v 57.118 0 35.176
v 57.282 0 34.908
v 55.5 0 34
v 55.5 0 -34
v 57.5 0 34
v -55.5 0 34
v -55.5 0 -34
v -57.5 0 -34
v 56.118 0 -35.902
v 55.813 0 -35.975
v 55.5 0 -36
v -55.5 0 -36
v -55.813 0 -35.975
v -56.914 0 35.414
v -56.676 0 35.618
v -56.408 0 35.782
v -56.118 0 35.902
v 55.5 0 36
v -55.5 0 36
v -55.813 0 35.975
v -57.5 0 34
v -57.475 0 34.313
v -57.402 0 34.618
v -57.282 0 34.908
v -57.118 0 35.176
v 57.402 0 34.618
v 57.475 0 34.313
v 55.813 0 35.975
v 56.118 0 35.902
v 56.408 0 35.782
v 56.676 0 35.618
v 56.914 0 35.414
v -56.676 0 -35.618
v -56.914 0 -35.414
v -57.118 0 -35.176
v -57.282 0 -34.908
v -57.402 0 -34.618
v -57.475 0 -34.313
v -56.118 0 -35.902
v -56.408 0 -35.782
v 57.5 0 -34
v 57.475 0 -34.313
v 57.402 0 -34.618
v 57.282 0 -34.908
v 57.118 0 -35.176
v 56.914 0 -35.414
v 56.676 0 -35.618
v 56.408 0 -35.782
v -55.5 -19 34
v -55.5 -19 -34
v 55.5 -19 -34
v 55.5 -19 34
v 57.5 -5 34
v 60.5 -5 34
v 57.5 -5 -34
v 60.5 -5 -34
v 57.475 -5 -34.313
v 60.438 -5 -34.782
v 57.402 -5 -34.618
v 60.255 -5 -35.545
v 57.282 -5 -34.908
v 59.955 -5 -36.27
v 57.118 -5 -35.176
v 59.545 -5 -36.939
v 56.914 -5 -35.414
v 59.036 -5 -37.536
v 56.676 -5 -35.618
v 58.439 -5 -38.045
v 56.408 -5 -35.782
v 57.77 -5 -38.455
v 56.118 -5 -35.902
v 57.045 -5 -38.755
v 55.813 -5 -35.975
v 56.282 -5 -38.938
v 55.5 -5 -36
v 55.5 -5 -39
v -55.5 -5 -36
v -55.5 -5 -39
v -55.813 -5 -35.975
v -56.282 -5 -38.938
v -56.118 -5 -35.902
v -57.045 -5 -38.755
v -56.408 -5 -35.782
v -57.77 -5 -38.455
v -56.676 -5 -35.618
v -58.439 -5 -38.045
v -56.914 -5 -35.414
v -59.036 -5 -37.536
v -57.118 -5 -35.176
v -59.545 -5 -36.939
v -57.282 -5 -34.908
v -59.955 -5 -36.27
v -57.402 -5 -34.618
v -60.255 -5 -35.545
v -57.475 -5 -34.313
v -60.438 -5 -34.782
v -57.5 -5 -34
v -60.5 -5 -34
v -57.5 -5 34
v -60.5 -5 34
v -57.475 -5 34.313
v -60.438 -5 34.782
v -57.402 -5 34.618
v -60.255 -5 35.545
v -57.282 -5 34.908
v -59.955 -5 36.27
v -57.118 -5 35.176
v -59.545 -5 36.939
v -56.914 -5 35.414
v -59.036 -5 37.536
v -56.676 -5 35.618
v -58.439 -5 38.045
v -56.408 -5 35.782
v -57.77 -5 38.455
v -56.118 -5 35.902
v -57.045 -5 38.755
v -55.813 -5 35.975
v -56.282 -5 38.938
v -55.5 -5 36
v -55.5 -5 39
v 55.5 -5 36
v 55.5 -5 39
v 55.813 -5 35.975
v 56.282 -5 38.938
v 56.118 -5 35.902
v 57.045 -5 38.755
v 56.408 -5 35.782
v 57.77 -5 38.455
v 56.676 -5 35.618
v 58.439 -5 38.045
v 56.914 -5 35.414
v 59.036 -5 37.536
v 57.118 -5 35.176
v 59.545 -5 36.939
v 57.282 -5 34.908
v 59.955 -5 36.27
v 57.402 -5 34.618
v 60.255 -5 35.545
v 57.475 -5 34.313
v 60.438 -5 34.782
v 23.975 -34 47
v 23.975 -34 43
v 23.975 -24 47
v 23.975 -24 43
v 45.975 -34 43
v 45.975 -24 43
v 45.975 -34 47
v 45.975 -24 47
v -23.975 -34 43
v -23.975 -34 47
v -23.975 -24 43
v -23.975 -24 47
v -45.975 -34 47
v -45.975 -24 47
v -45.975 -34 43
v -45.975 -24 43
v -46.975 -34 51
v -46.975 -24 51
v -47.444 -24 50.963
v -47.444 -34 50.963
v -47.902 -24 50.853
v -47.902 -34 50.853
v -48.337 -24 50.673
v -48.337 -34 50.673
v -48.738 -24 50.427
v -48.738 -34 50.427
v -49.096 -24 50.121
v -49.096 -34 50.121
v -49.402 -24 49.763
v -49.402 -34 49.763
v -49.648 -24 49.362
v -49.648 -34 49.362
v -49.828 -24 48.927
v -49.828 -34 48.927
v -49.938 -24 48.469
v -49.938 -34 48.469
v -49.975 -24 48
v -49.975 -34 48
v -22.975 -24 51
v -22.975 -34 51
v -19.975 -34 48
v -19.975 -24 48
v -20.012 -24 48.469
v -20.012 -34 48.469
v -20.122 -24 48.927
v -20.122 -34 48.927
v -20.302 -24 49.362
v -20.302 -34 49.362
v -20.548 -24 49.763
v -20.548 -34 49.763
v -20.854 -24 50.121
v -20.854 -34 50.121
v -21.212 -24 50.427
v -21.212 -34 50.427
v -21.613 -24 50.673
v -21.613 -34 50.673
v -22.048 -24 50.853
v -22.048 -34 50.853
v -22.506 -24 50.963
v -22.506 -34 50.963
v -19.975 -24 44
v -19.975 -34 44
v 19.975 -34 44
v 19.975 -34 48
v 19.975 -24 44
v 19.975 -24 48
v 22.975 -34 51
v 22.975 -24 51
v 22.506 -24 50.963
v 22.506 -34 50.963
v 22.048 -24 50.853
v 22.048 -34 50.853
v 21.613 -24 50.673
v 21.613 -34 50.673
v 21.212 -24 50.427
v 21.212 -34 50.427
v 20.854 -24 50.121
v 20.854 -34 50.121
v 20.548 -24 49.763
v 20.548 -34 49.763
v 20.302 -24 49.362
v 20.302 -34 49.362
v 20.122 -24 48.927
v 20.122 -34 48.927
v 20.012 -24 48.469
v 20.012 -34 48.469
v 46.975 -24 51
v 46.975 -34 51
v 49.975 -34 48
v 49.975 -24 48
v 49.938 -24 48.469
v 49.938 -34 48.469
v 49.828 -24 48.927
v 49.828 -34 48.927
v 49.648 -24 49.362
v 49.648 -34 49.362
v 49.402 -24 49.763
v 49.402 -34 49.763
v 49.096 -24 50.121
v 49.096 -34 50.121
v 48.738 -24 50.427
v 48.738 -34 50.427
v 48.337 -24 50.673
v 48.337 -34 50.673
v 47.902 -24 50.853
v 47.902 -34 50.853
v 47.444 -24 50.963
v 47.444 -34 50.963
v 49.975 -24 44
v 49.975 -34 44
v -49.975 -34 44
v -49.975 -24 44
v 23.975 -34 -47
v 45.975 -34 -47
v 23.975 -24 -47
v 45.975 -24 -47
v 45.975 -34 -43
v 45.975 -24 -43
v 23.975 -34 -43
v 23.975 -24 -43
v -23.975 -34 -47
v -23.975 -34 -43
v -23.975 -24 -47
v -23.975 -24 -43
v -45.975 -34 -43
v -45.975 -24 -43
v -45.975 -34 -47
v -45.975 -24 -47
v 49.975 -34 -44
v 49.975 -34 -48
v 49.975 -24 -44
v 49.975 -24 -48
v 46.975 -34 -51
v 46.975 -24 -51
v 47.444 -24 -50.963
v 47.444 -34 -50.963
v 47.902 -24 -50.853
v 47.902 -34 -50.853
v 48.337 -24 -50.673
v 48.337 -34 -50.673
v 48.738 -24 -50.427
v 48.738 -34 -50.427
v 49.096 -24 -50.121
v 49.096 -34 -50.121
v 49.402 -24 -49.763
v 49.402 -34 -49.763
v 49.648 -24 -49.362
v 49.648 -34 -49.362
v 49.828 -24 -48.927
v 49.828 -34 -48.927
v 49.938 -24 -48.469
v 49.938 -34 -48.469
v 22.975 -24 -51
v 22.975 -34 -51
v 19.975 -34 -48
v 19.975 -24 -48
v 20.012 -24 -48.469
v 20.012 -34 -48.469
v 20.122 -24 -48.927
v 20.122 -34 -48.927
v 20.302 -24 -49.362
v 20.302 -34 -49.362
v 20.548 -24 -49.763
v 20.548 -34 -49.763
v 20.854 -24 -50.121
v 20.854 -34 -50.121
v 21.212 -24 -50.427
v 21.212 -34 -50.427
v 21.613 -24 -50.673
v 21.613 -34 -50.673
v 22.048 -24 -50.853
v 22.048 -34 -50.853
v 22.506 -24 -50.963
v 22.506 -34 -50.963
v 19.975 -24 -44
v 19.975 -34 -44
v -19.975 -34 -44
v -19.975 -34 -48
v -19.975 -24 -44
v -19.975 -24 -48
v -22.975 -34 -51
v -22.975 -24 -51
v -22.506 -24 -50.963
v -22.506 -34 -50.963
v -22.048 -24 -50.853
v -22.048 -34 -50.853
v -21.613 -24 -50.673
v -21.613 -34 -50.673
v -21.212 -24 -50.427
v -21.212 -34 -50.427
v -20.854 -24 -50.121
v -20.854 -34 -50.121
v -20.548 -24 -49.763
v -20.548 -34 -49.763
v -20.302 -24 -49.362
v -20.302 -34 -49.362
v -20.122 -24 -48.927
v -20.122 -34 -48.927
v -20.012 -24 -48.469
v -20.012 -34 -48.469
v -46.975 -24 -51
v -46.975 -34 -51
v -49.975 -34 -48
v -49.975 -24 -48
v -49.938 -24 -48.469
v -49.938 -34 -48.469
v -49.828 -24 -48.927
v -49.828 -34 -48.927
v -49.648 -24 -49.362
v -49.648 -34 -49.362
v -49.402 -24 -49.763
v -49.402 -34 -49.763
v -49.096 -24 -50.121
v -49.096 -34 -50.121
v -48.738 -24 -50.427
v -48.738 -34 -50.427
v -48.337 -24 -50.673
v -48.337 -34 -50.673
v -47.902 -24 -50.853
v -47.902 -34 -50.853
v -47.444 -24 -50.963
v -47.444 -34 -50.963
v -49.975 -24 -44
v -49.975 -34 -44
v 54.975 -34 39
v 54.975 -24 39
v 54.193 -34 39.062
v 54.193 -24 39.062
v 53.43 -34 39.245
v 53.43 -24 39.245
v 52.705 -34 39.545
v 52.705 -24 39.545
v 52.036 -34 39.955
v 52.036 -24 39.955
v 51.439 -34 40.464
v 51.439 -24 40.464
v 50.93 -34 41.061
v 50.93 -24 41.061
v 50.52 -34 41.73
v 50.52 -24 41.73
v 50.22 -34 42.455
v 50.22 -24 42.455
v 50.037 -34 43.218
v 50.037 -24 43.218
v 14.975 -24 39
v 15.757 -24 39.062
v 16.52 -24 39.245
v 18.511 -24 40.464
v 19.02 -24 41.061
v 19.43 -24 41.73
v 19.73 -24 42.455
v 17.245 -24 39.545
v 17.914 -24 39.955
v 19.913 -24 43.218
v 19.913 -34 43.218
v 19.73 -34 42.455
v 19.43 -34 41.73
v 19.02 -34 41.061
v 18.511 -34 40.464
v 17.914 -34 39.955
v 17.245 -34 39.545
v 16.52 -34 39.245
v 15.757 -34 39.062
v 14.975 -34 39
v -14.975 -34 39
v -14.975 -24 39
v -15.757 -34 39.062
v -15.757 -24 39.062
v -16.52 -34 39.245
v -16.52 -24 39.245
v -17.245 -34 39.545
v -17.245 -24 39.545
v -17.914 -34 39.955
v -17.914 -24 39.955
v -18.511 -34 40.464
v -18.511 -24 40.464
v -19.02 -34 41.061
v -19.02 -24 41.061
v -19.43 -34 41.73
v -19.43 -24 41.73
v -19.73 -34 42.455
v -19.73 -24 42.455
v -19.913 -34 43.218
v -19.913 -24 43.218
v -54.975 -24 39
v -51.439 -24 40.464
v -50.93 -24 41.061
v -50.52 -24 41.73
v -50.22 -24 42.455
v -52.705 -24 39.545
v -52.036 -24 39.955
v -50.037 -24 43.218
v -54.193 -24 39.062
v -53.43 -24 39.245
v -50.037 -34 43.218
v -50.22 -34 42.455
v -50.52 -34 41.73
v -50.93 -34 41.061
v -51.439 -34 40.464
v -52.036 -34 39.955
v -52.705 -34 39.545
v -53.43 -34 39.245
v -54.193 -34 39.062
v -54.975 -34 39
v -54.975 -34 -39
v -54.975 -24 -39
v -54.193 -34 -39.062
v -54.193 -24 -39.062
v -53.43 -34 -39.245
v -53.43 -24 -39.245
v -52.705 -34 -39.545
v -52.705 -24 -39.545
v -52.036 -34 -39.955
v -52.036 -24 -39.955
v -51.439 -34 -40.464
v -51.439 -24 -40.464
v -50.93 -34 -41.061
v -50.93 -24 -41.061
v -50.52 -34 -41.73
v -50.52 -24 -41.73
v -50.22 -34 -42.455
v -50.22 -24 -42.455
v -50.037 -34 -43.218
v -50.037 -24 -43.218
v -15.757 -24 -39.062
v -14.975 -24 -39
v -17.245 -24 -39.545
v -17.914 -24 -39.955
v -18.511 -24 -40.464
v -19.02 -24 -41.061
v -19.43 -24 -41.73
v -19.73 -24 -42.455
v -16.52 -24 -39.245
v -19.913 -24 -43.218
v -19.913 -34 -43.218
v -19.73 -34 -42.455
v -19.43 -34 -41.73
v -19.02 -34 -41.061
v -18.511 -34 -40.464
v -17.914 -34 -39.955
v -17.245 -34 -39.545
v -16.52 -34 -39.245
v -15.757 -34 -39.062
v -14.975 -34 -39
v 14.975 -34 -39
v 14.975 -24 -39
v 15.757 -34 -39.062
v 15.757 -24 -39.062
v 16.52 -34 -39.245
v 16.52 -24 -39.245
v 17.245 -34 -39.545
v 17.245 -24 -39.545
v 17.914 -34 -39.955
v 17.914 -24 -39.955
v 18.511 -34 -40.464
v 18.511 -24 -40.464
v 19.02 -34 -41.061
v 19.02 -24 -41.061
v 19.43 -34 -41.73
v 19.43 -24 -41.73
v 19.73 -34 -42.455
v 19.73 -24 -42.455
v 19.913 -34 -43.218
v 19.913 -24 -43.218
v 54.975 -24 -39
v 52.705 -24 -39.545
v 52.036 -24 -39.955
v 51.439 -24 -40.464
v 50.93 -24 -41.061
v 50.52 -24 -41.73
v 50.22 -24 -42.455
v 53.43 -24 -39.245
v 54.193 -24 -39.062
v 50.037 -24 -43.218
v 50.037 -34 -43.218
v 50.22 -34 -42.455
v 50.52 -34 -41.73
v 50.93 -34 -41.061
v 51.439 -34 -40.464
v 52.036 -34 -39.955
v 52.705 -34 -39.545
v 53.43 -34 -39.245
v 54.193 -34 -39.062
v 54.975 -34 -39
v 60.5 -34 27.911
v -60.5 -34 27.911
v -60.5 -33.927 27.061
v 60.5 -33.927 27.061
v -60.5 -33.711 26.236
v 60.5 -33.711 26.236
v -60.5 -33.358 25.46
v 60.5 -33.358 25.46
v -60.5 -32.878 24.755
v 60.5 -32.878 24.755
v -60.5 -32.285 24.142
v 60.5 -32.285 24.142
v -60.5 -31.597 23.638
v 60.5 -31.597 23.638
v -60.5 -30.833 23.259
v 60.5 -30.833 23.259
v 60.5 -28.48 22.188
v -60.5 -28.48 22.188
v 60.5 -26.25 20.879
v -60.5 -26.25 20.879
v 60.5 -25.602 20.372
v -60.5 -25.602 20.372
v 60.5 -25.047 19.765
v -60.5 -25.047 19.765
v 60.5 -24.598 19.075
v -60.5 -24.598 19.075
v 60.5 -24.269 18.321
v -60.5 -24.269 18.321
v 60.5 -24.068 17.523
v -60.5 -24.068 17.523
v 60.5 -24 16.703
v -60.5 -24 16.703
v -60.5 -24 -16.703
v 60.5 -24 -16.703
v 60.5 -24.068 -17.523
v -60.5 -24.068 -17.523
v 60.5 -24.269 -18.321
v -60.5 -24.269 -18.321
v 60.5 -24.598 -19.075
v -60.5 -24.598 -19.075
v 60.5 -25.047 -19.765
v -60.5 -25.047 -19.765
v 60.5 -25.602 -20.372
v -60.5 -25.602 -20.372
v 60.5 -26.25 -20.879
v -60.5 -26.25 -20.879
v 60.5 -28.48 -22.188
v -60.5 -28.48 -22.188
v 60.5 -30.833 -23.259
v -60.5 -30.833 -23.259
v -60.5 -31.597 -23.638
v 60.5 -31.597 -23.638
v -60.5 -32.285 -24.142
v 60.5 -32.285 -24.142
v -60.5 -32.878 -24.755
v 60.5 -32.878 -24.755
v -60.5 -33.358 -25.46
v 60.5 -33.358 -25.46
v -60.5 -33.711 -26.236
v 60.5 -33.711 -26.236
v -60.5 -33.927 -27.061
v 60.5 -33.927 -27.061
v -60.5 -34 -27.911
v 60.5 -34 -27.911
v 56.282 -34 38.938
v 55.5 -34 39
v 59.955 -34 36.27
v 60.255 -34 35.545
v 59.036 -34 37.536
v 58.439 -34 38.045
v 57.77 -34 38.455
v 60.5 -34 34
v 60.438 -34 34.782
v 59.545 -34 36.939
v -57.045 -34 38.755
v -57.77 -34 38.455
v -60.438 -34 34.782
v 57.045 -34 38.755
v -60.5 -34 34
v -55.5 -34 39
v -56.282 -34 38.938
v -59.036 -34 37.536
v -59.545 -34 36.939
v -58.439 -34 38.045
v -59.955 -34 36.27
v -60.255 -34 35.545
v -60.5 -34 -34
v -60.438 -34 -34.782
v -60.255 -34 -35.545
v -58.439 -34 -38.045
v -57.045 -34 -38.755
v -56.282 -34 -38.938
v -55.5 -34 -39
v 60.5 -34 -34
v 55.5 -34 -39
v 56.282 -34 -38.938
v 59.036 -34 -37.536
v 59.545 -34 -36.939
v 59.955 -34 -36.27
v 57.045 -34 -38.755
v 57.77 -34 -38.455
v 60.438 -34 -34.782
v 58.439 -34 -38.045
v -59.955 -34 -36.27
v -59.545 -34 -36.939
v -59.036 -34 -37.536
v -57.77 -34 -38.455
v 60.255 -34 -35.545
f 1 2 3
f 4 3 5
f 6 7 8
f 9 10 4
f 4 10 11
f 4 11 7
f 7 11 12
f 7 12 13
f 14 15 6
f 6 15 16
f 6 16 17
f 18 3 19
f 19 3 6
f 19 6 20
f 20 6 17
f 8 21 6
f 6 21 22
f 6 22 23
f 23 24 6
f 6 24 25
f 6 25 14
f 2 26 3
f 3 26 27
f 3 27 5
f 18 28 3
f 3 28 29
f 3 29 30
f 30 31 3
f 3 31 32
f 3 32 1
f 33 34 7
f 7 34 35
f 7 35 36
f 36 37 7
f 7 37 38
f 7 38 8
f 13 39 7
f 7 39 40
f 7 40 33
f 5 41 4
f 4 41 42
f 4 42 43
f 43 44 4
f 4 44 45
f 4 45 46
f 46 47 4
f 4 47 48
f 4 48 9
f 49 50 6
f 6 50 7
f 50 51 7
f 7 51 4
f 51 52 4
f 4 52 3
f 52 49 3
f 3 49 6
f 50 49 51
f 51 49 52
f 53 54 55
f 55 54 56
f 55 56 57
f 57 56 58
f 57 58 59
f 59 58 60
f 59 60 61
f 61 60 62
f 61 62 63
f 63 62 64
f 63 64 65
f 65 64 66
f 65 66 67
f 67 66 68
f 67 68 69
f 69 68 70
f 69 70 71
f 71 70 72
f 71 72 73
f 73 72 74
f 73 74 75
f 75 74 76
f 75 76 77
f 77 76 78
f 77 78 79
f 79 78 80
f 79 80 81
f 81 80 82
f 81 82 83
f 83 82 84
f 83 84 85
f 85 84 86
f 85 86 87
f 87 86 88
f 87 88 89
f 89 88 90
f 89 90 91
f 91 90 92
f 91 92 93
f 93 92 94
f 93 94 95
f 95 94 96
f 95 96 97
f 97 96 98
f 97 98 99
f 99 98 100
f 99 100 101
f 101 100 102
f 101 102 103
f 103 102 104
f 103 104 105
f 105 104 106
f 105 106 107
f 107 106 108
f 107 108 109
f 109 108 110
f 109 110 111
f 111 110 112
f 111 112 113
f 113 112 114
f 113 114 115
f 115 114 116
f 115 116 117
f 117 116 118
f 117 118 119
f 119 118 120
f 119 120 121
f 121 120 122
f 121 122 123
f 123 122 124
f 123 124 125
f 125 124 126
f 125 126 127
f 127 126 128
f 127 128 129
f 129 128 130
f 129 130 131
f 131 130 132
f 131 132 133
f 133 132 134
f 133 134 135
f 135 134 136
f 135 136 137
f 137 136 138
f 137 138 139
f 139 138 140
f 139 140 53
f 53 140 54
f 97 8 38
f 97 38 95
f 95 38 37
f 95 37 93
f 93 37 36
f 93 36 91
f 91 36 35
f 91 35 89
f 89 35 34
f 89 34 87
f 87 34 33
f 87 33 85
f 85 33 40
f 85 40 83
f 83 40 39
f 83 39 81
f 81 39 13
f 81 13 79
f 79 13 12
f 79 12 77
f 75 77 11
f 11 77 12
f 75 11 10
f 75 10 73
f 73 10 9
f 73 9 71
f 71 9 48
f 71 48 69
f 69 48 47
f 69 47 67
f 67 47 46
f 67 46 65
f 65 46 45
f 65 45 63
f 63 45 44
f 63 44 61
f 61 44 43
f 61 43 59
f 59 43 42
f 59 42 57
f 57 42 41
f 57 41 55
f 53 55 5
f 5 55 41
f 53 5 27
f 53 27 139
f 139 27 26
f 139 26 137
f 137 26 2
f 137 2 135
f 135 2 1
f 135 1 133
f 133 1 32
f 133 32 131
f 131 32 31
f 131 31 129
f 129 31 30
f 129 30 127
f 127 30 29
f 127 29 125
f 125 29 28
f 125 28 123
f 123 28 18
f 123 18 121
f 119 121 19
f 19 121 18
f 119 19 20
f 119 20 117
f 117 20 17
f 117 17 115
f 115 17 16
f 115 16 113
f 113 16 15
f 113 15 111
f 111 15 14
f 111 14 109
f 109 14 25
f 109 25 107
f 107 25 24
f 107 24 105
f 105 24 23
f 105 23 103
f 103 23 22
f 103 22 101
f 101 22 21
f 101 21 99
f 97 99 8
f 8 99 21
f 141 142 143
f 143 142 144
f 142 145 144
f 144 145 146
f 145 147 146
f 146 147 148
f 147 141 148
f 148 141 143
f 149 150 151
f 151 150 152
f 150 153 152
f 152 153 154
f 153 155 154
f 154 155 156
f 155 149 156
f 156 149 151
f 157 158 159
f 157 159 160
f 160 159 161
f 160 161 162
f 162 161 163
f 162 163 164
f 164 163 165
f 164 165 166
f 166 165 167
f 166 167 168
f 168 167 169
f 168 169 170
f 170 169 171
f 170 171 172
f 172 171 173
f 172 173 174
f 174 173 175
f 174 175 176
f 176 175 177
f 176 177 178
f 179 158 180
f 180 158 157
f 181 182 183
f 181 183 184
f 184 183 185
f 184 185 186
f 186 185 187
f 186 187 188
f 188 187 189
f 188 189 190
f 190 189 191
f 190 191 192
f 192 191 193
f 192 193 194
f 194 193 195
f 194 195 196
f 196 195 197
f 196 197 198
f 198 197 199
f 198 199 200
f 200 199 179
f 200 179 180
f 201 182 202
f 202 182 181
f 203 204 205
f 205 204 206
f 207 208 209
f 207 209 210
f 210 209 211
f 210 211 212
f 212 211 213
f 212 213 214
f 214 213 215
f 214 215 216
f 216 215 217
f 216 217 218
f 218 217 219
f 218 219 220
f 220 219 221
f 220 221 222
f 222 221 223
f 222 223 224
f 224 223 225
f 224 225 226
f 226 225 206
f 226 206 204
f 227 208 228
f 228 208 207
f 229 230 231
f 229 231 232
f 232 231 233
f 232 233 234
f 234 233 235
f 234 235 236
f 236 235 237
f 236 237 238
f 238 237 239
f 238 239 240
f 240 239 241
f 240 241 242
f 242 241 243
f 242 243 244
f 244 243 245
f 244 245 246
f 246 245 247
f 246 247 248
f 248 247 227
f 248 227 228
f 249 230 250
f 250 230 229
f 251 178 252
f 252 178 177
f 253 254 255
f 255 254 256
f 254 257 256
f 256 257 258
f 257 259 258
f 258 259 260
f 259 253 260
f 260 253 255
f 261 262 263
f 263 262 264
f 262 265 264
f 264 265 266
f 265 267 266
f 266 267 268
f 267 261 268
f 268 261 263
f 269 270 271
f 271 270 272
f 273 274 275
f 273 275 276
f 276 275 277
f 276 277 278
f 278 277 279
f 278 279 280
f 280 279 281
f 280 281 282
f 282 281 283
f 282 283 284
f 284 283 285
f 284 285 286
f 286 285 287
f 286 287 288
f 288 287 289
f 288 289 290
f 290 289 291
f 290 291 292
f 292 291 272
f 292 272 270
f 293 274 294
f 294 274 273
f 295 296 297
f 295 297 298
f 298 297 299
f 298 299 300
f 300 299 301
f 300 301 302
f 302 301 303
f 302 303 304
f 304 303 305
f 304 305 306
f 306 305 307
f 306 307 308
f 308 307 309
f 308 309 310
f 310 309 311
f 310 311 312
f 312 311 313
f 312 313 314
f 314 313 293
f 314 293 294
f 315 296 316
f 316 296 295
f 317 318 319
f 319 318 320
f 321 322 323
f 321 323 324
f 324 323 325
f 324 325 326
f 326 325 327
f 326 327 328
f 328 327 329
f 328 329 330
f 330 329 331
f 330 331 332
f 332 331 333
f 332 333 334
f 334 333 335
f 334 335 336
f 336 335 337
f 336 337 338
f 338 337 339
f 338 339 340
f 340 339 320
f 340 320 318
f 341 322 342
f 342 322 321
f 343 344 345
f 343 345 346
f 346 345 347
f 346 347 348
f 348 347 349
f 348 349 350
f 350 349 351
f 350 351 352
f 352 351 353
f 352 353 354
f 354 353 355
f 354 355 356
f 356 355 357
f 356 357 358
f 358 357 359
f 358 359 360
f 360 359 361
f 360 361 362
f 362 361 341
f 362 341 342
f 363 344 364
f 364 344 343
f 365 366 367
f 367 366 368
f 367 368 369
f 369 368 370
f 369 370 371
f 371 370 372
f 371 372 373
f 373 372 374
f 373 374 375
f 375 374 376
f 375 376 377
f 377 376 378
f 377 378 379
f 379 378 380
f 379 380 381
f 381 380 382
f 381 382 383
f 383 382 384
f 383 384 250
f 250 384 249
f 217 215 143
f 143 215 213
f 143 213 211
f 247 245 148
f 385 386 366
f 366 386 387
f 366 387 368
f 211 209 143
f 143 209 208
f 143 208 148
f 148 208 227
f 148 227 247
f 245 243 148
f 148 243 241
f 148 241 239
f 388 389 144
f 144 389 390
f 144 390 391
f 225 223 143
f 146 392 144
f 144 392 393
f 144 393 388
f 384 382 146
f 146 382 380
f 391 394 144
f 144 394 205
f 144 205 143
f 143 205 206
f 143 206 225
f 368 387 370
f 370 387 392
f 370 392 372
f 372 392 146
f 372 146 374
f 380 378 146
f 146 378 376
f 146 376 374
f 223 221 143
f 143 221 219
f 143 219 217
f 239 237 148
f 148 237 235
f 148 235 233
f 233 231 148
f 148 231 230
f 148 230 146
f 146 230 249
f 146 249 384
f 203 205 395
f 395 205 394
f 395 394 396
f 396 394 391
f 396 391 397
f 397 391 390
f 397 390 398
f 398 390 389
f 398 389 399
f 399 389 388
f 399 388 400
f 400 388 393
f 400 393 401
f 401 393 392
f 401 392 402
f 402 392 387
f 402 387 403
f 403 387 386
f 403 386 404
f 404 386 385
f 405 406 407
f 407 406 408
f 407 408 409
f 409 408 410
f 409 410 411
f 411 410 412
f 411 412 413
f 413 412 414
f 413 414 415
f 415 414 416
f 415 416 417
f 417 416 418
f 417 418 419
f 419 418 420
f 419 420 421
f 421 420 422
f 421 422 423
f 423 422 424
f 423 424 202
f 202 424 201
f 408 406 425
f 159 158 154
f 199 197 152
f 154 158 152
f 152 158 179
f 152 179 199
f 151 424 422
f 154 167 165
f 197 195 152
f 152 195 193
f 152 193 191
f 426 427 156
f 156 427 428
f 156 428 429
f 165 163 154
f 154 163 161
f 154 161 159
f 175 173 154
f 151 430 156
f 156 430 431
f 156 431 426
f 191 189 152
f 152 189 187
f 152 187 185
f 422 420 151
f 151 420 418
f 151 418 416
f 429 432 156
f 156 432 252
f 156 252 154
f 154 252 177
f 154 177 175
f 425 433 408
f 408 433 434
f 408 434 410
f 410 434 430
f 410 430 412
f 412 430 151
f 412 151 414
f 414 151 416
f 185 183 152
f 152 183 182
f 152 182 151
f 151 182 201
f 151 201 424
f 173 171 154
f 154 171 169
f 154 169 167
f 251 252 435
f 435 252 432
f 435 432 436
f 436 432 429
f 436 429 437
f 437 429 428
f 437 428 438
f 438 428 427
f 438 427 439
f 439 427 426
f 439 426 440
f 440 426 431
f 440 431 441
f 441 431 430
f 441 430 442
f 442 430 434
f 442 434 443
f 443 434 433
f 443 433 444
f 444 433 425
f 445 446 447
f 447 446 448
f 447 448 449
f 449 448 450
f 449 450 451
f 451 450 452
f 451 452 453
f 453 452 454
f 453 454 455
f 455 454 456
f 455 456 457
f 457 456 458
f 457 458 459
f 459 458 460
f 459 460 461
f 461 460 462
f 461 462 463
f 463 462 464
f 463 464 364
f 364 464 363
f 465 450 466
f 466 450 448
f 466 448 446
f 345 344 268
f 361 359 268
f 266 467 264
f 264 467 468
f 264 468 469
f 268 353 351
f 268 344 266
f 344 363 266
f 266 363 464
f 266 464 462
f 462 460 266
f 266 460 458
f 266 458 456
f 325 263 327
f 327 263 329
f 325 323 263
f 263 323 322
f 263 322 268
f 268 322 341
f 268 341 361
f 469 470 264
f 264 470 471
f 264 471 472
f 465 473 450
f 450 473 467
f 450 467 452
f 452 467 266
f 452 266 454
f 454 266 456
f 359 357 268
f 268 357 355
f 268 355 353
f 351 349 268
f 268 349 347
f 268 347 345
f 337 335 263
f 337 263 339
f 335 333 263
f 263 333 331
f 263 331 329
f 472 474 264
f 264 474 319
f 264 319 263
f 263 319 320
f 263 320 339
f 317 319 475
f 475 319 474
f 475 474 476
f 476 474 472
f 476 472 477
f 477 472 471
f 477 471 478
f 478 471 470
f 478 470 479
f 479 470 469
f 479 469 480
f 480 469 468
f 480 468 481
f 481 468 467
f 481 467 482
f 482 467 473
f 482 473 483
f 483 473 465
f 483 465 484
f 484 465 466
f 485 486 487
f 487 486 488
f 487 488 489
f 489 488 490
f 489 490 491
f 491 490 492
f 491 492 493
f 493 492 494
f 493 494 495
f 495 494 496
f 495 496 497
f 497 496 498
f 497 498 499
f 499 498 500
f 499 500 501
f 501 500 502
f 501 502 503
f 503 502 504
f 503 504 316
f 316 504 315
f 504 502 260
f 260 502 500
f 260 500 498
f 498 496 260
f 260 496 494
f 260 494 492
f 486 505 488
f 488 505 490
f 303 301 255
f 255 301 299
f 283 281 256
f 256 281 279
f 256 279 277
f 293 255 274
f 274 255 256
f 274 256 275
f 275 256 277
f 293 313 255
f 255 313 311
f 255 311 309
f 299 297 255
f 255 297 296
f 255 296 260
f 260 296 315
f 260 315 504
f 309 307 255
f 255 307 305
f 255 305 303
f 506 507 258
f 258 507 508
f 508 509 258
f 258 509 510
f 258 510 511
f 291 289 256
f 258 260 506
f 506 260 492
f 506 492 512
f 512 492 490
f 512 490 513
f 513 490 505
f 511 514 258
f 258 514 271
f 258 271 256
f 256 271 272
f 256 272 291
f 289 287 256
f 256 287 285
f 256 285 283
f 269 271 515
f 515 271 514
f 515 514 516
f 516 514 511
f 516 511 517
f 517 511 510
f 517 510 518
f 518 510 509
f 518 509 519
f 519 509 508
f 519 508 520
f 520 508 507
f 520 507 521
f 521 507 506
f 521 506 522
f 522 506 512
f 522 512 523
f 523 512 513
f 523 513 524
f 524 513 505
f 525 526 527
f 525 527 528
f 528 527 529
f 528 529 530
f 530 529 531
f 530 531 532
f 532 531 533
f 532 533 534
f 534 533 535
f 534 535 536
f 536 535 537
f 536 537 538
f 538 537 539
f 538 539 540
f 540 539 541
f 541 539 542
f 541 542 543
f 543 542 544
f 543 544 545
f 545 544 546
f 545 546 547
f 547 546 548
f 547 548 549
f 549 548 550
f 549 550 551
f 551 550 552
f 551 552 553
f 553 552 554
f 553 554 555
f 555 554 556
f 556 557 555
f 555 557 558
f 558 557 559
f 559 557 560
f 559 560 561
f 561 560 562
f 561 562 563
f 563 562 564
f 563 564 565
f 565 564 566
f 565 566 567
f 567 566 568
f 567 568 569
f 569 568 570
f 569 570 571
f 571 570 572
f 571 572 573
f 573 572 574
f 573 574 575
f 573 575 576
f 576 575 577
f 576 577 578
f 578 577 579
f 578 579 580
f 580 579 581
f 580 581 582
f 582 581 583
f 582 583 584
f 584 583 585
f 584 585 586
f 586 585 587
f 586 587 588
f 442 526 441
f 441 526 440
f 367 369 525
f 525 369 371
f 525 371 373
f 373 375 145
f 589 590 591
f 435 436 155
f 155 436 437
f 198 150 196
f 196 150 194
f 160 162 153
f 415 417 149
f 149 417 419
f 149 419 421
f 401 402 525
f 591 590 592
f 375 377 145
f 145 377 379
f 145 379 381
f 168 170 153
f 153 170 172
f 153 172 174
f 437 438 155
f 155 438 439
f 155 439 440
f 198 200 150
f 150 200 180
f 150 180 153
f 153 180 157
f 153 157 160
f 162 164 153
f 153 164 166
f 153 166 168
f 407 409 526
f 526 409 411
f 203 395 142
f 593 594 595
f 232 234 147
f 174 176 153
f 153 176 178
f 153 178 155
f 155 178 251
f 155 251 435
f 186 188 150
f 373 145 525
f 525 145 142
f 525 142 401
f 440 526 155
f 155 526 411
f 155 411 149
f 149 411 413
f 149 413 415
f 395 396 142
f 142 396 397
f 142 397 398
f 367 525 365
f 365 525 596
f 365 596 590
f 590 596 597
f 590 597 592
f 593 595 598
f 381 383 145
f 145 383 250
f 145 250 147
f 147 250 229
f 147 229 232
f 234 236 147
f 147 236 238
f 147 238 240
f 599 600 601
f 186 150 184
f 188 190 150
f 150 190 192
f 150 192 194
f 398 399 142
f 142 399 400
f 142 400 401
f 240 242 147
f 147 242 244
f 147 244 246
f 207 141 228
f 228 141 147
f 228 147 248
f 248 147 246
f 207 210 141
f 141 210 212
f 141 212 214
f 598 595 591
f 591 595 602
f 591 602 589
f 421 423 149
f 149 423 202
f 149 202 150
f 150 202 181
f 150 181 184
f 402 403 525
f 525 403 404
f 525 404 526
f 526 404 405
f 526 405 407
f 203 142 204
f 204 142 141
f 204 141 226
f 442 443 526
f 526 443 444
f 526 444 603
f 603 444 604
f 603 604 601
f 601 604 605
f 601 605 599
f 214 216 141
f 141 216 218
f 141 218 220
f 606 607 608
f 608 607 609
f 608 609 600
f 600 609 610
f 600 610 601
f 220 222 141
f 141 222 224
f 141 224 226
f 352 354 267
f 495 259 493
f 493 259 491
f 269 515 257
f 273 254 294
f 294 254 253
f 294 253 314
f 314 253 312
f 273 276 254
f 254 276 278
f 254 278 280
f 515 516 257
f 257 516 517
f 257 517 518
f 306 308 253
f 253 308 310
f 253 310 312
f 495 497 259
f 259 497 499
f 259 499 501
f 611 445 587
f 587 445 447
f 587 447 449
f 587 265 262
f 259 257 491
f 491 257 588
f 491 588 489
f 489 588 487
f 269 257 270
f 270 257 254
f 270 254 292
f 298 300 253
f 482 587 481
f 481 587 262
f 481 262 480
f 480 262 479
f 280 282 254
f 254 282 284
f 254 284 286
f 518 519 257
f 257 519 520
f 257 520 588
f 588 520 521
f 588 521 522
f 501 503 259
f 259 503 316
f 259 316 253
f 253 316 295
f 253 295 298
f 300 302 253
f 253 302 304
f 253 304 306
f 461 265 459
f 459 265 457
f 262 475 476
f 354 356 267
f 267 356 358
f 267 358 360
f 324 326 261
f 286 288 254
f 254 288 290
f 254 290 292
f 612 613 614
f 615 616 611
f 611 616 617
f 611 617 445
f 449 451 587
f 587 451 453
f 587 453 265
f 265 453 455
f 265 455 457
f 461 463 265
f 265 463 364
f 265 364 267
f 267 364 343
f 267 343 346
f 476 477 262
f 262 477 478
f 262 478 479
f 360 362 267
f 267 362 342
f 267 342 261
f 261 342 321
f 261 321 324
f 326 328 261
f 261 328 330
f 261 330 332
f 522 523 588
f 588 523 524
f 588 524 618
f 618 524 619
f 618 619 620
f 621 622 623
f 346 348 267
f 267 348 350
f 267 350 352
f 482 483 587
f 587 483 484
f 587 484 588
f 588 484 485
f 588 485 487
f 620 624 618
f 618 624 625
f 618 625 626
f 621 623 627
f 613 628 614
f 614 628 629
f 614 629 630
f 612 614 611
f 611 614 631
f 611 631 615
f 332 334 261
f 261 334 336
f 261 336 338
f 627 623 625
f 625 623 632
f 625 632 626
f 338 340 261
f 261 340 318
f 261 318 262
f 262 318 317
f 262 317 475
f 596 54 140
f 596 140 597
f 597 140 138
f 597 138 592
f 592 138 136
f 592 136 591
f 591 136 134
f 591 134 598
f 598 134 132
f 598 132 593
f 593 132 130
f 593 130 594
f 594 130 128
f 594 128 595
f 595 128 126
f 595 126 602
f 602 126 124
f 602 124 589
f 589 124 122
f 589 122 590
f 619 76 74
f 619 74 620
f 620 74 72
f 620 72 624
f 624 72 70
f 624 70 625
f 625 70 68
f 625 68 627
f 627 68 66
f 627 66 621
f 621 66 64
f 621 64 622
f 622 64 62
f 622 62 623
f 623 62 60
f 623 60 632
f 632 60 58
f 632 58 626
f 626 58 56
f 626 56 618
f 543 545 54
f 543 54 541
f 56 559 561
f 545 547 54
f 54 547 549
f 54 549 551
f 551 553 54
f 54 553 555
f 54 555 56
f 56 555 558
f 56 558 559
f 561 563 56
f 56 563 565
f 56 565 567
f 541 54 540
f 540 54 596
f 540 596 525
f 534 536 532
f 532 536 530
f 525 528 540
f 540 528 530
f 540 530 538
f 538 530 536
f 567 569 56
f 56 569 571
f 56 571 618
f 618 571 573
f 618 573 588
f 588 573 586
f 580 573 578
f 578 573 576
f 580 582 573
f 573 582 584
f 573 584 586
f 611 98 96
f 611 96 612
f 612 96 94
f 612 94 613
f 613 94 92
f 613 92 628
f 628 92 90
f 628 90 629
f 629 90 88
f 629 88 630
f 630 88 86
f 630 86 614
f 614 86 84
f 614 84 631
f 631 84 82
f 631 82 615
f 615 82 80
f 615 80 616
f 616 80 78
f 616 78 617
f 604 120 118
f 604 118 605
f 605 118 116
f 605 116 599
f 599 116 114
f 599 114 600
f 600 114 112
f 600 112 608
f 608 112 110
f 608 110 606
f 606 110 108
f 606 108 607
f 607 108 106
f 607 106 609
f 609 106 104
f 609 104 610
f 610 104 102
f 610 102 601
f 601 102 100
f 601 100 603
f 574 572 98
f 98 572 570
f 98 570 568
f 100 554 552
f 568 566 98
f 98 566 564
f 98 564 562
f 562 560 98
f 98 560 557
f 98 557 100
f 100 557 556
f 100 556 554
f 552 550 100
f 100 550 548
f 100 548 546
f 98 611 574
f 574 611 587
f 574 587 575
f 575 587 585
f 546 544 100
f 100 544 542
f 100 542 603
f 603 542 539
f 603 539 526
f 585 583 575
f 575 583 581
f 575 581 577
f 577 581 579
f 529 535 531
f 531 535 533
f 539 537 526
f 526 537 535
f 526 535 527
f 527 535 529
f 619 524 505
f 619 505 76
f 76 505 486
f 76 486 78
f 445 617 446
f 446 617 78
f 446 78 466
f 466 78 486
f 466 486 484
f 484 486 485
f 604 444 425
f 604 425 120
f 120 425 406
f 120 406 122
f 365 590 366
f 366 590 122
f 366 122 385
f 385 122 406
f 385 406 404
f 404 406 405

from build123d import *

# Parameters (mm, degrees)
CROQUIS2_W                   = 121
CROQUIS2_H                   = 78
CROQUIS2_W_2                 = 111
CROQUIS2_H_2                 = 68
SALIENTE_EXTRUIR2_DEPTH      = 19
CROQUIS4_W                   = 121
CROQUIS4_H                   = 78
SALIENTE_EXTRUIR3_DEPTH      = 5
SALIENTE_EXTRUIR4_DEPTH      = 60.5
SALIENTE_EXTRUIR4_DEPTH_BACK = 60.5
REDONDEO2_R                  = 5
CROQUIS7_W                   = 30
CROQUIS7_H                   = 12
CROQUIS7_W_2                 = 22
CROQUIS7_H_2                 = 4
SALIENTE_EXTRUIR5_DEPTH      = 10
REDONDEO5_R                  = 3
REDONDEO8_R                  = 5
REDONDEO6_R                  = 5
CROQUIS8_OUTSIDE_W           = 155.374
CROQUIS8_OUTSIDE_H           = 136.374
CORTAR_EXTRUIR1_DEPTH        = 5


with BuildPart() as part:
    # Croquis2 → Saliente-Extruir2 (new body)
    with BuildSketch(Plane(origin=(0, 0, 0), x_dir=(1, 0, 0), z_dir=(0, 1, 0))):
        Rectangle(CROQUIS2_W, CROQUIS2_H)
        Rectangle(CROQUIS2_W_2, CROQUIS2_H_2, mode=Mode.SUBTRACT)
    extrude(amount=-SALIENTE_EXTRUIR2_DEPTH)

    # Croquis4 → Saliente-Extruir3 (add)
    with BuildSketch(Plane.XZ.offset(19)):
        Rectangle(CROQUIS4_W, CROQUIS4_H)
    extrude(amount=SALIENTE_EXTRUIR3_DEPTH)

    # Croquis6 → Saliente-Extruir4 (add, two sides: drawn at the far end of the back side and taken through both)
    with BuildSketch(Plane(origin=(0, 0, 0), x_dir=(0, 0, -1), z_dir=(1, 0, 0)).offset(-SALIENTE_EXTRUIR4_DEPTH_BACK)):
        with BuildLine():
            Line((-39, -24), (-19.209372712, -24))
            ThreePointArc((-19.209372712, -24), (-22.306932281, -28.712804945), (-24.269322199, -34))
            Line((-24.269322199, -34), (-39, -34))
            Line((-39, -34), (-39, -24))
        make_face()
        with BuildLine():
            Line((39, -24), (39, -34))
            Line((39, -34), (24.269322199, -34))
            ThreePointArc((24.269322199, -34), (22.306932281, -28.712804945), (19.209372712, -24))
            Line((19.209372712, -24), (39, -24))
        make_face()
    extrude(amount=SALIENTE_EXTRUIR4_DEPTH + SALIENTE_EXTRUIR4_DEPTH_BACK)

    # Redondeo2
    redondeo2_edges = [part.edges().sort_by_distance(p)[0] for p in [
        (0, -34, 24.269322199),
        (0, -24, 19.209372712),
        (0, -34, -24.269322199),
        (0, -24, -19.209372712),
    ]]
    fillet(redondeo2_edges, radius=REDONDEO2_R)

    # Croquis7 → Saliente-Extruir5 (add)
    # profile 1 of 4: a face of its own
    with BuildSketch(Plane.XZ.offset(24)):
        with Locations((-34.974984355, 45)):
            Rectangle(CROQUIS7_W, CROQUIS7_H)
        with Locations((-34.974984355, 45)):
            Rectangle(CROQUIS7_W_2, CROQUIS7_H_2, mode=Mode.SUBTRACT)
    # profile 2 of 4: a face of its own
    with BuildSketch(Plane.XZ.offset(24)):
        with Locations((-34.974984355, -45)):
            Rectangle(CROQUIS7_W, CROQUIS7_H)
        with Locations((-34.974984355, -45)):
            Rectangle(CROQUIS7_W_2, CROQUIS7_H_2, mode=Mode.SUBTRACT)
    # profile 3 of 4: a face of its own
    with BuildSketch(Plane.XZ.offset(24)):
        with Locations((34.974984355, -45)):
            Rectangle(CROQUIS7_W, CROQUIS7_H)
        with Locations((34.974984355, -45)):
            Rectangle(CROQUIS7_W_2, CROQUIS7_H_2, mode=Mode.SUBTRACT)
    # profile 4 of 4: a face of its own
    with BuildSketch(Plane.XZ.offset(24)):
        with Locations((34.974984355, 45)):
            Rectangle(CROQUIS7_W, CROQUIS7_H)
        with Locations((34.974984355, 45)):
            Rectangle(CROQUIS7_W_2, CROQUIS7_H_2, mode=Mode.SUBTRACT)
    extrude(amount=SALIENTE_EXTRUIR5_DEPTH)

    # Redondeo5
    redondeo5_edges = [part.edges().sort_by_distance(p)[0] for p in [
        (-49.974984355, -29, 51),
        (-19.974984355, -29, 51),
        (-49.974984355, -29, -51),
        (-19.974984355, -29, -51),
        (19.974984355, -29, -51),
        (49.974984355, -29, -51),
        (49.974984355, -29, 51),
        (19.974984355, -29, 51),
    ]]
    fillet(redondeo5_edges, radius=REDONDEO5_R)

    # Redondeo8
    redondeo8_edges = [part.edges().sort_by_distance(p)[0] for p in [
        (60.5, -17, 39),
        (-60.5, -17, 39),
        (-60.5, -17, -39),
        (60.5, -17, -39),
    ]]
    fillet(redondeo8_edges, radius=REDONDEO8_R)

    # Redondeo6
    redondeo6_edges = [part.edges().sort_by_distance(p)[0] for p in [
        (-49.974984355, -29, 39),
        (-19.974984355, -29, 39),
        (-49.974984355, -29, -39),
        (-19.974984355, -29, -39),
        (49.974984355, -29, -39),
        (19.974984355, -29, -39),
        (49.974984355, -29, 39),
        (19.974984355, -29, 39),
    ]]
    fillet(redondeo6_edges, radius=REDONDEO6_R)

    # Croquis8 outside → Cortar-Extruir1 (cut)
    with BuildSketch(Plane(origin=(0, 0, 0), x_dir=(1, 0, 0), z_dir=(0, 1, 0))):
        Rectangle(CROQUIS8_OUTSIDE_W, CROQUIS8_OUTSIDE_H)
        with BuildLine():
            Line((55.5, 36), (-55.5, 36))
            ThreePointArc((-55.5, 36), (-56.914213562, 35.414213562), (-57.5, 34))
            Line((-57.5, 34), (-57.5, -34))
            ThreePointArc((-57.5, -34), (-56.914213562, -35.414213562), (-55.5, -36))
            Line((-55.5, -36), (55.5, -36))
            ThreePointArc((55.5, -36), (56.914213562, -35.414213562), (57.5, -34))
            Line((57.5, -34), (57.5, 34))
            ThreePointArc((57.5, 34), (56.914213562, 35.414213562), (55.5, 36))
        make_face(mode=Mode.SUBTRACT)
    extrude(amount=-CORTAR_EXTRUIR1_DEPTH, mode=Mode.SUBTRACT)


solid = part.part
